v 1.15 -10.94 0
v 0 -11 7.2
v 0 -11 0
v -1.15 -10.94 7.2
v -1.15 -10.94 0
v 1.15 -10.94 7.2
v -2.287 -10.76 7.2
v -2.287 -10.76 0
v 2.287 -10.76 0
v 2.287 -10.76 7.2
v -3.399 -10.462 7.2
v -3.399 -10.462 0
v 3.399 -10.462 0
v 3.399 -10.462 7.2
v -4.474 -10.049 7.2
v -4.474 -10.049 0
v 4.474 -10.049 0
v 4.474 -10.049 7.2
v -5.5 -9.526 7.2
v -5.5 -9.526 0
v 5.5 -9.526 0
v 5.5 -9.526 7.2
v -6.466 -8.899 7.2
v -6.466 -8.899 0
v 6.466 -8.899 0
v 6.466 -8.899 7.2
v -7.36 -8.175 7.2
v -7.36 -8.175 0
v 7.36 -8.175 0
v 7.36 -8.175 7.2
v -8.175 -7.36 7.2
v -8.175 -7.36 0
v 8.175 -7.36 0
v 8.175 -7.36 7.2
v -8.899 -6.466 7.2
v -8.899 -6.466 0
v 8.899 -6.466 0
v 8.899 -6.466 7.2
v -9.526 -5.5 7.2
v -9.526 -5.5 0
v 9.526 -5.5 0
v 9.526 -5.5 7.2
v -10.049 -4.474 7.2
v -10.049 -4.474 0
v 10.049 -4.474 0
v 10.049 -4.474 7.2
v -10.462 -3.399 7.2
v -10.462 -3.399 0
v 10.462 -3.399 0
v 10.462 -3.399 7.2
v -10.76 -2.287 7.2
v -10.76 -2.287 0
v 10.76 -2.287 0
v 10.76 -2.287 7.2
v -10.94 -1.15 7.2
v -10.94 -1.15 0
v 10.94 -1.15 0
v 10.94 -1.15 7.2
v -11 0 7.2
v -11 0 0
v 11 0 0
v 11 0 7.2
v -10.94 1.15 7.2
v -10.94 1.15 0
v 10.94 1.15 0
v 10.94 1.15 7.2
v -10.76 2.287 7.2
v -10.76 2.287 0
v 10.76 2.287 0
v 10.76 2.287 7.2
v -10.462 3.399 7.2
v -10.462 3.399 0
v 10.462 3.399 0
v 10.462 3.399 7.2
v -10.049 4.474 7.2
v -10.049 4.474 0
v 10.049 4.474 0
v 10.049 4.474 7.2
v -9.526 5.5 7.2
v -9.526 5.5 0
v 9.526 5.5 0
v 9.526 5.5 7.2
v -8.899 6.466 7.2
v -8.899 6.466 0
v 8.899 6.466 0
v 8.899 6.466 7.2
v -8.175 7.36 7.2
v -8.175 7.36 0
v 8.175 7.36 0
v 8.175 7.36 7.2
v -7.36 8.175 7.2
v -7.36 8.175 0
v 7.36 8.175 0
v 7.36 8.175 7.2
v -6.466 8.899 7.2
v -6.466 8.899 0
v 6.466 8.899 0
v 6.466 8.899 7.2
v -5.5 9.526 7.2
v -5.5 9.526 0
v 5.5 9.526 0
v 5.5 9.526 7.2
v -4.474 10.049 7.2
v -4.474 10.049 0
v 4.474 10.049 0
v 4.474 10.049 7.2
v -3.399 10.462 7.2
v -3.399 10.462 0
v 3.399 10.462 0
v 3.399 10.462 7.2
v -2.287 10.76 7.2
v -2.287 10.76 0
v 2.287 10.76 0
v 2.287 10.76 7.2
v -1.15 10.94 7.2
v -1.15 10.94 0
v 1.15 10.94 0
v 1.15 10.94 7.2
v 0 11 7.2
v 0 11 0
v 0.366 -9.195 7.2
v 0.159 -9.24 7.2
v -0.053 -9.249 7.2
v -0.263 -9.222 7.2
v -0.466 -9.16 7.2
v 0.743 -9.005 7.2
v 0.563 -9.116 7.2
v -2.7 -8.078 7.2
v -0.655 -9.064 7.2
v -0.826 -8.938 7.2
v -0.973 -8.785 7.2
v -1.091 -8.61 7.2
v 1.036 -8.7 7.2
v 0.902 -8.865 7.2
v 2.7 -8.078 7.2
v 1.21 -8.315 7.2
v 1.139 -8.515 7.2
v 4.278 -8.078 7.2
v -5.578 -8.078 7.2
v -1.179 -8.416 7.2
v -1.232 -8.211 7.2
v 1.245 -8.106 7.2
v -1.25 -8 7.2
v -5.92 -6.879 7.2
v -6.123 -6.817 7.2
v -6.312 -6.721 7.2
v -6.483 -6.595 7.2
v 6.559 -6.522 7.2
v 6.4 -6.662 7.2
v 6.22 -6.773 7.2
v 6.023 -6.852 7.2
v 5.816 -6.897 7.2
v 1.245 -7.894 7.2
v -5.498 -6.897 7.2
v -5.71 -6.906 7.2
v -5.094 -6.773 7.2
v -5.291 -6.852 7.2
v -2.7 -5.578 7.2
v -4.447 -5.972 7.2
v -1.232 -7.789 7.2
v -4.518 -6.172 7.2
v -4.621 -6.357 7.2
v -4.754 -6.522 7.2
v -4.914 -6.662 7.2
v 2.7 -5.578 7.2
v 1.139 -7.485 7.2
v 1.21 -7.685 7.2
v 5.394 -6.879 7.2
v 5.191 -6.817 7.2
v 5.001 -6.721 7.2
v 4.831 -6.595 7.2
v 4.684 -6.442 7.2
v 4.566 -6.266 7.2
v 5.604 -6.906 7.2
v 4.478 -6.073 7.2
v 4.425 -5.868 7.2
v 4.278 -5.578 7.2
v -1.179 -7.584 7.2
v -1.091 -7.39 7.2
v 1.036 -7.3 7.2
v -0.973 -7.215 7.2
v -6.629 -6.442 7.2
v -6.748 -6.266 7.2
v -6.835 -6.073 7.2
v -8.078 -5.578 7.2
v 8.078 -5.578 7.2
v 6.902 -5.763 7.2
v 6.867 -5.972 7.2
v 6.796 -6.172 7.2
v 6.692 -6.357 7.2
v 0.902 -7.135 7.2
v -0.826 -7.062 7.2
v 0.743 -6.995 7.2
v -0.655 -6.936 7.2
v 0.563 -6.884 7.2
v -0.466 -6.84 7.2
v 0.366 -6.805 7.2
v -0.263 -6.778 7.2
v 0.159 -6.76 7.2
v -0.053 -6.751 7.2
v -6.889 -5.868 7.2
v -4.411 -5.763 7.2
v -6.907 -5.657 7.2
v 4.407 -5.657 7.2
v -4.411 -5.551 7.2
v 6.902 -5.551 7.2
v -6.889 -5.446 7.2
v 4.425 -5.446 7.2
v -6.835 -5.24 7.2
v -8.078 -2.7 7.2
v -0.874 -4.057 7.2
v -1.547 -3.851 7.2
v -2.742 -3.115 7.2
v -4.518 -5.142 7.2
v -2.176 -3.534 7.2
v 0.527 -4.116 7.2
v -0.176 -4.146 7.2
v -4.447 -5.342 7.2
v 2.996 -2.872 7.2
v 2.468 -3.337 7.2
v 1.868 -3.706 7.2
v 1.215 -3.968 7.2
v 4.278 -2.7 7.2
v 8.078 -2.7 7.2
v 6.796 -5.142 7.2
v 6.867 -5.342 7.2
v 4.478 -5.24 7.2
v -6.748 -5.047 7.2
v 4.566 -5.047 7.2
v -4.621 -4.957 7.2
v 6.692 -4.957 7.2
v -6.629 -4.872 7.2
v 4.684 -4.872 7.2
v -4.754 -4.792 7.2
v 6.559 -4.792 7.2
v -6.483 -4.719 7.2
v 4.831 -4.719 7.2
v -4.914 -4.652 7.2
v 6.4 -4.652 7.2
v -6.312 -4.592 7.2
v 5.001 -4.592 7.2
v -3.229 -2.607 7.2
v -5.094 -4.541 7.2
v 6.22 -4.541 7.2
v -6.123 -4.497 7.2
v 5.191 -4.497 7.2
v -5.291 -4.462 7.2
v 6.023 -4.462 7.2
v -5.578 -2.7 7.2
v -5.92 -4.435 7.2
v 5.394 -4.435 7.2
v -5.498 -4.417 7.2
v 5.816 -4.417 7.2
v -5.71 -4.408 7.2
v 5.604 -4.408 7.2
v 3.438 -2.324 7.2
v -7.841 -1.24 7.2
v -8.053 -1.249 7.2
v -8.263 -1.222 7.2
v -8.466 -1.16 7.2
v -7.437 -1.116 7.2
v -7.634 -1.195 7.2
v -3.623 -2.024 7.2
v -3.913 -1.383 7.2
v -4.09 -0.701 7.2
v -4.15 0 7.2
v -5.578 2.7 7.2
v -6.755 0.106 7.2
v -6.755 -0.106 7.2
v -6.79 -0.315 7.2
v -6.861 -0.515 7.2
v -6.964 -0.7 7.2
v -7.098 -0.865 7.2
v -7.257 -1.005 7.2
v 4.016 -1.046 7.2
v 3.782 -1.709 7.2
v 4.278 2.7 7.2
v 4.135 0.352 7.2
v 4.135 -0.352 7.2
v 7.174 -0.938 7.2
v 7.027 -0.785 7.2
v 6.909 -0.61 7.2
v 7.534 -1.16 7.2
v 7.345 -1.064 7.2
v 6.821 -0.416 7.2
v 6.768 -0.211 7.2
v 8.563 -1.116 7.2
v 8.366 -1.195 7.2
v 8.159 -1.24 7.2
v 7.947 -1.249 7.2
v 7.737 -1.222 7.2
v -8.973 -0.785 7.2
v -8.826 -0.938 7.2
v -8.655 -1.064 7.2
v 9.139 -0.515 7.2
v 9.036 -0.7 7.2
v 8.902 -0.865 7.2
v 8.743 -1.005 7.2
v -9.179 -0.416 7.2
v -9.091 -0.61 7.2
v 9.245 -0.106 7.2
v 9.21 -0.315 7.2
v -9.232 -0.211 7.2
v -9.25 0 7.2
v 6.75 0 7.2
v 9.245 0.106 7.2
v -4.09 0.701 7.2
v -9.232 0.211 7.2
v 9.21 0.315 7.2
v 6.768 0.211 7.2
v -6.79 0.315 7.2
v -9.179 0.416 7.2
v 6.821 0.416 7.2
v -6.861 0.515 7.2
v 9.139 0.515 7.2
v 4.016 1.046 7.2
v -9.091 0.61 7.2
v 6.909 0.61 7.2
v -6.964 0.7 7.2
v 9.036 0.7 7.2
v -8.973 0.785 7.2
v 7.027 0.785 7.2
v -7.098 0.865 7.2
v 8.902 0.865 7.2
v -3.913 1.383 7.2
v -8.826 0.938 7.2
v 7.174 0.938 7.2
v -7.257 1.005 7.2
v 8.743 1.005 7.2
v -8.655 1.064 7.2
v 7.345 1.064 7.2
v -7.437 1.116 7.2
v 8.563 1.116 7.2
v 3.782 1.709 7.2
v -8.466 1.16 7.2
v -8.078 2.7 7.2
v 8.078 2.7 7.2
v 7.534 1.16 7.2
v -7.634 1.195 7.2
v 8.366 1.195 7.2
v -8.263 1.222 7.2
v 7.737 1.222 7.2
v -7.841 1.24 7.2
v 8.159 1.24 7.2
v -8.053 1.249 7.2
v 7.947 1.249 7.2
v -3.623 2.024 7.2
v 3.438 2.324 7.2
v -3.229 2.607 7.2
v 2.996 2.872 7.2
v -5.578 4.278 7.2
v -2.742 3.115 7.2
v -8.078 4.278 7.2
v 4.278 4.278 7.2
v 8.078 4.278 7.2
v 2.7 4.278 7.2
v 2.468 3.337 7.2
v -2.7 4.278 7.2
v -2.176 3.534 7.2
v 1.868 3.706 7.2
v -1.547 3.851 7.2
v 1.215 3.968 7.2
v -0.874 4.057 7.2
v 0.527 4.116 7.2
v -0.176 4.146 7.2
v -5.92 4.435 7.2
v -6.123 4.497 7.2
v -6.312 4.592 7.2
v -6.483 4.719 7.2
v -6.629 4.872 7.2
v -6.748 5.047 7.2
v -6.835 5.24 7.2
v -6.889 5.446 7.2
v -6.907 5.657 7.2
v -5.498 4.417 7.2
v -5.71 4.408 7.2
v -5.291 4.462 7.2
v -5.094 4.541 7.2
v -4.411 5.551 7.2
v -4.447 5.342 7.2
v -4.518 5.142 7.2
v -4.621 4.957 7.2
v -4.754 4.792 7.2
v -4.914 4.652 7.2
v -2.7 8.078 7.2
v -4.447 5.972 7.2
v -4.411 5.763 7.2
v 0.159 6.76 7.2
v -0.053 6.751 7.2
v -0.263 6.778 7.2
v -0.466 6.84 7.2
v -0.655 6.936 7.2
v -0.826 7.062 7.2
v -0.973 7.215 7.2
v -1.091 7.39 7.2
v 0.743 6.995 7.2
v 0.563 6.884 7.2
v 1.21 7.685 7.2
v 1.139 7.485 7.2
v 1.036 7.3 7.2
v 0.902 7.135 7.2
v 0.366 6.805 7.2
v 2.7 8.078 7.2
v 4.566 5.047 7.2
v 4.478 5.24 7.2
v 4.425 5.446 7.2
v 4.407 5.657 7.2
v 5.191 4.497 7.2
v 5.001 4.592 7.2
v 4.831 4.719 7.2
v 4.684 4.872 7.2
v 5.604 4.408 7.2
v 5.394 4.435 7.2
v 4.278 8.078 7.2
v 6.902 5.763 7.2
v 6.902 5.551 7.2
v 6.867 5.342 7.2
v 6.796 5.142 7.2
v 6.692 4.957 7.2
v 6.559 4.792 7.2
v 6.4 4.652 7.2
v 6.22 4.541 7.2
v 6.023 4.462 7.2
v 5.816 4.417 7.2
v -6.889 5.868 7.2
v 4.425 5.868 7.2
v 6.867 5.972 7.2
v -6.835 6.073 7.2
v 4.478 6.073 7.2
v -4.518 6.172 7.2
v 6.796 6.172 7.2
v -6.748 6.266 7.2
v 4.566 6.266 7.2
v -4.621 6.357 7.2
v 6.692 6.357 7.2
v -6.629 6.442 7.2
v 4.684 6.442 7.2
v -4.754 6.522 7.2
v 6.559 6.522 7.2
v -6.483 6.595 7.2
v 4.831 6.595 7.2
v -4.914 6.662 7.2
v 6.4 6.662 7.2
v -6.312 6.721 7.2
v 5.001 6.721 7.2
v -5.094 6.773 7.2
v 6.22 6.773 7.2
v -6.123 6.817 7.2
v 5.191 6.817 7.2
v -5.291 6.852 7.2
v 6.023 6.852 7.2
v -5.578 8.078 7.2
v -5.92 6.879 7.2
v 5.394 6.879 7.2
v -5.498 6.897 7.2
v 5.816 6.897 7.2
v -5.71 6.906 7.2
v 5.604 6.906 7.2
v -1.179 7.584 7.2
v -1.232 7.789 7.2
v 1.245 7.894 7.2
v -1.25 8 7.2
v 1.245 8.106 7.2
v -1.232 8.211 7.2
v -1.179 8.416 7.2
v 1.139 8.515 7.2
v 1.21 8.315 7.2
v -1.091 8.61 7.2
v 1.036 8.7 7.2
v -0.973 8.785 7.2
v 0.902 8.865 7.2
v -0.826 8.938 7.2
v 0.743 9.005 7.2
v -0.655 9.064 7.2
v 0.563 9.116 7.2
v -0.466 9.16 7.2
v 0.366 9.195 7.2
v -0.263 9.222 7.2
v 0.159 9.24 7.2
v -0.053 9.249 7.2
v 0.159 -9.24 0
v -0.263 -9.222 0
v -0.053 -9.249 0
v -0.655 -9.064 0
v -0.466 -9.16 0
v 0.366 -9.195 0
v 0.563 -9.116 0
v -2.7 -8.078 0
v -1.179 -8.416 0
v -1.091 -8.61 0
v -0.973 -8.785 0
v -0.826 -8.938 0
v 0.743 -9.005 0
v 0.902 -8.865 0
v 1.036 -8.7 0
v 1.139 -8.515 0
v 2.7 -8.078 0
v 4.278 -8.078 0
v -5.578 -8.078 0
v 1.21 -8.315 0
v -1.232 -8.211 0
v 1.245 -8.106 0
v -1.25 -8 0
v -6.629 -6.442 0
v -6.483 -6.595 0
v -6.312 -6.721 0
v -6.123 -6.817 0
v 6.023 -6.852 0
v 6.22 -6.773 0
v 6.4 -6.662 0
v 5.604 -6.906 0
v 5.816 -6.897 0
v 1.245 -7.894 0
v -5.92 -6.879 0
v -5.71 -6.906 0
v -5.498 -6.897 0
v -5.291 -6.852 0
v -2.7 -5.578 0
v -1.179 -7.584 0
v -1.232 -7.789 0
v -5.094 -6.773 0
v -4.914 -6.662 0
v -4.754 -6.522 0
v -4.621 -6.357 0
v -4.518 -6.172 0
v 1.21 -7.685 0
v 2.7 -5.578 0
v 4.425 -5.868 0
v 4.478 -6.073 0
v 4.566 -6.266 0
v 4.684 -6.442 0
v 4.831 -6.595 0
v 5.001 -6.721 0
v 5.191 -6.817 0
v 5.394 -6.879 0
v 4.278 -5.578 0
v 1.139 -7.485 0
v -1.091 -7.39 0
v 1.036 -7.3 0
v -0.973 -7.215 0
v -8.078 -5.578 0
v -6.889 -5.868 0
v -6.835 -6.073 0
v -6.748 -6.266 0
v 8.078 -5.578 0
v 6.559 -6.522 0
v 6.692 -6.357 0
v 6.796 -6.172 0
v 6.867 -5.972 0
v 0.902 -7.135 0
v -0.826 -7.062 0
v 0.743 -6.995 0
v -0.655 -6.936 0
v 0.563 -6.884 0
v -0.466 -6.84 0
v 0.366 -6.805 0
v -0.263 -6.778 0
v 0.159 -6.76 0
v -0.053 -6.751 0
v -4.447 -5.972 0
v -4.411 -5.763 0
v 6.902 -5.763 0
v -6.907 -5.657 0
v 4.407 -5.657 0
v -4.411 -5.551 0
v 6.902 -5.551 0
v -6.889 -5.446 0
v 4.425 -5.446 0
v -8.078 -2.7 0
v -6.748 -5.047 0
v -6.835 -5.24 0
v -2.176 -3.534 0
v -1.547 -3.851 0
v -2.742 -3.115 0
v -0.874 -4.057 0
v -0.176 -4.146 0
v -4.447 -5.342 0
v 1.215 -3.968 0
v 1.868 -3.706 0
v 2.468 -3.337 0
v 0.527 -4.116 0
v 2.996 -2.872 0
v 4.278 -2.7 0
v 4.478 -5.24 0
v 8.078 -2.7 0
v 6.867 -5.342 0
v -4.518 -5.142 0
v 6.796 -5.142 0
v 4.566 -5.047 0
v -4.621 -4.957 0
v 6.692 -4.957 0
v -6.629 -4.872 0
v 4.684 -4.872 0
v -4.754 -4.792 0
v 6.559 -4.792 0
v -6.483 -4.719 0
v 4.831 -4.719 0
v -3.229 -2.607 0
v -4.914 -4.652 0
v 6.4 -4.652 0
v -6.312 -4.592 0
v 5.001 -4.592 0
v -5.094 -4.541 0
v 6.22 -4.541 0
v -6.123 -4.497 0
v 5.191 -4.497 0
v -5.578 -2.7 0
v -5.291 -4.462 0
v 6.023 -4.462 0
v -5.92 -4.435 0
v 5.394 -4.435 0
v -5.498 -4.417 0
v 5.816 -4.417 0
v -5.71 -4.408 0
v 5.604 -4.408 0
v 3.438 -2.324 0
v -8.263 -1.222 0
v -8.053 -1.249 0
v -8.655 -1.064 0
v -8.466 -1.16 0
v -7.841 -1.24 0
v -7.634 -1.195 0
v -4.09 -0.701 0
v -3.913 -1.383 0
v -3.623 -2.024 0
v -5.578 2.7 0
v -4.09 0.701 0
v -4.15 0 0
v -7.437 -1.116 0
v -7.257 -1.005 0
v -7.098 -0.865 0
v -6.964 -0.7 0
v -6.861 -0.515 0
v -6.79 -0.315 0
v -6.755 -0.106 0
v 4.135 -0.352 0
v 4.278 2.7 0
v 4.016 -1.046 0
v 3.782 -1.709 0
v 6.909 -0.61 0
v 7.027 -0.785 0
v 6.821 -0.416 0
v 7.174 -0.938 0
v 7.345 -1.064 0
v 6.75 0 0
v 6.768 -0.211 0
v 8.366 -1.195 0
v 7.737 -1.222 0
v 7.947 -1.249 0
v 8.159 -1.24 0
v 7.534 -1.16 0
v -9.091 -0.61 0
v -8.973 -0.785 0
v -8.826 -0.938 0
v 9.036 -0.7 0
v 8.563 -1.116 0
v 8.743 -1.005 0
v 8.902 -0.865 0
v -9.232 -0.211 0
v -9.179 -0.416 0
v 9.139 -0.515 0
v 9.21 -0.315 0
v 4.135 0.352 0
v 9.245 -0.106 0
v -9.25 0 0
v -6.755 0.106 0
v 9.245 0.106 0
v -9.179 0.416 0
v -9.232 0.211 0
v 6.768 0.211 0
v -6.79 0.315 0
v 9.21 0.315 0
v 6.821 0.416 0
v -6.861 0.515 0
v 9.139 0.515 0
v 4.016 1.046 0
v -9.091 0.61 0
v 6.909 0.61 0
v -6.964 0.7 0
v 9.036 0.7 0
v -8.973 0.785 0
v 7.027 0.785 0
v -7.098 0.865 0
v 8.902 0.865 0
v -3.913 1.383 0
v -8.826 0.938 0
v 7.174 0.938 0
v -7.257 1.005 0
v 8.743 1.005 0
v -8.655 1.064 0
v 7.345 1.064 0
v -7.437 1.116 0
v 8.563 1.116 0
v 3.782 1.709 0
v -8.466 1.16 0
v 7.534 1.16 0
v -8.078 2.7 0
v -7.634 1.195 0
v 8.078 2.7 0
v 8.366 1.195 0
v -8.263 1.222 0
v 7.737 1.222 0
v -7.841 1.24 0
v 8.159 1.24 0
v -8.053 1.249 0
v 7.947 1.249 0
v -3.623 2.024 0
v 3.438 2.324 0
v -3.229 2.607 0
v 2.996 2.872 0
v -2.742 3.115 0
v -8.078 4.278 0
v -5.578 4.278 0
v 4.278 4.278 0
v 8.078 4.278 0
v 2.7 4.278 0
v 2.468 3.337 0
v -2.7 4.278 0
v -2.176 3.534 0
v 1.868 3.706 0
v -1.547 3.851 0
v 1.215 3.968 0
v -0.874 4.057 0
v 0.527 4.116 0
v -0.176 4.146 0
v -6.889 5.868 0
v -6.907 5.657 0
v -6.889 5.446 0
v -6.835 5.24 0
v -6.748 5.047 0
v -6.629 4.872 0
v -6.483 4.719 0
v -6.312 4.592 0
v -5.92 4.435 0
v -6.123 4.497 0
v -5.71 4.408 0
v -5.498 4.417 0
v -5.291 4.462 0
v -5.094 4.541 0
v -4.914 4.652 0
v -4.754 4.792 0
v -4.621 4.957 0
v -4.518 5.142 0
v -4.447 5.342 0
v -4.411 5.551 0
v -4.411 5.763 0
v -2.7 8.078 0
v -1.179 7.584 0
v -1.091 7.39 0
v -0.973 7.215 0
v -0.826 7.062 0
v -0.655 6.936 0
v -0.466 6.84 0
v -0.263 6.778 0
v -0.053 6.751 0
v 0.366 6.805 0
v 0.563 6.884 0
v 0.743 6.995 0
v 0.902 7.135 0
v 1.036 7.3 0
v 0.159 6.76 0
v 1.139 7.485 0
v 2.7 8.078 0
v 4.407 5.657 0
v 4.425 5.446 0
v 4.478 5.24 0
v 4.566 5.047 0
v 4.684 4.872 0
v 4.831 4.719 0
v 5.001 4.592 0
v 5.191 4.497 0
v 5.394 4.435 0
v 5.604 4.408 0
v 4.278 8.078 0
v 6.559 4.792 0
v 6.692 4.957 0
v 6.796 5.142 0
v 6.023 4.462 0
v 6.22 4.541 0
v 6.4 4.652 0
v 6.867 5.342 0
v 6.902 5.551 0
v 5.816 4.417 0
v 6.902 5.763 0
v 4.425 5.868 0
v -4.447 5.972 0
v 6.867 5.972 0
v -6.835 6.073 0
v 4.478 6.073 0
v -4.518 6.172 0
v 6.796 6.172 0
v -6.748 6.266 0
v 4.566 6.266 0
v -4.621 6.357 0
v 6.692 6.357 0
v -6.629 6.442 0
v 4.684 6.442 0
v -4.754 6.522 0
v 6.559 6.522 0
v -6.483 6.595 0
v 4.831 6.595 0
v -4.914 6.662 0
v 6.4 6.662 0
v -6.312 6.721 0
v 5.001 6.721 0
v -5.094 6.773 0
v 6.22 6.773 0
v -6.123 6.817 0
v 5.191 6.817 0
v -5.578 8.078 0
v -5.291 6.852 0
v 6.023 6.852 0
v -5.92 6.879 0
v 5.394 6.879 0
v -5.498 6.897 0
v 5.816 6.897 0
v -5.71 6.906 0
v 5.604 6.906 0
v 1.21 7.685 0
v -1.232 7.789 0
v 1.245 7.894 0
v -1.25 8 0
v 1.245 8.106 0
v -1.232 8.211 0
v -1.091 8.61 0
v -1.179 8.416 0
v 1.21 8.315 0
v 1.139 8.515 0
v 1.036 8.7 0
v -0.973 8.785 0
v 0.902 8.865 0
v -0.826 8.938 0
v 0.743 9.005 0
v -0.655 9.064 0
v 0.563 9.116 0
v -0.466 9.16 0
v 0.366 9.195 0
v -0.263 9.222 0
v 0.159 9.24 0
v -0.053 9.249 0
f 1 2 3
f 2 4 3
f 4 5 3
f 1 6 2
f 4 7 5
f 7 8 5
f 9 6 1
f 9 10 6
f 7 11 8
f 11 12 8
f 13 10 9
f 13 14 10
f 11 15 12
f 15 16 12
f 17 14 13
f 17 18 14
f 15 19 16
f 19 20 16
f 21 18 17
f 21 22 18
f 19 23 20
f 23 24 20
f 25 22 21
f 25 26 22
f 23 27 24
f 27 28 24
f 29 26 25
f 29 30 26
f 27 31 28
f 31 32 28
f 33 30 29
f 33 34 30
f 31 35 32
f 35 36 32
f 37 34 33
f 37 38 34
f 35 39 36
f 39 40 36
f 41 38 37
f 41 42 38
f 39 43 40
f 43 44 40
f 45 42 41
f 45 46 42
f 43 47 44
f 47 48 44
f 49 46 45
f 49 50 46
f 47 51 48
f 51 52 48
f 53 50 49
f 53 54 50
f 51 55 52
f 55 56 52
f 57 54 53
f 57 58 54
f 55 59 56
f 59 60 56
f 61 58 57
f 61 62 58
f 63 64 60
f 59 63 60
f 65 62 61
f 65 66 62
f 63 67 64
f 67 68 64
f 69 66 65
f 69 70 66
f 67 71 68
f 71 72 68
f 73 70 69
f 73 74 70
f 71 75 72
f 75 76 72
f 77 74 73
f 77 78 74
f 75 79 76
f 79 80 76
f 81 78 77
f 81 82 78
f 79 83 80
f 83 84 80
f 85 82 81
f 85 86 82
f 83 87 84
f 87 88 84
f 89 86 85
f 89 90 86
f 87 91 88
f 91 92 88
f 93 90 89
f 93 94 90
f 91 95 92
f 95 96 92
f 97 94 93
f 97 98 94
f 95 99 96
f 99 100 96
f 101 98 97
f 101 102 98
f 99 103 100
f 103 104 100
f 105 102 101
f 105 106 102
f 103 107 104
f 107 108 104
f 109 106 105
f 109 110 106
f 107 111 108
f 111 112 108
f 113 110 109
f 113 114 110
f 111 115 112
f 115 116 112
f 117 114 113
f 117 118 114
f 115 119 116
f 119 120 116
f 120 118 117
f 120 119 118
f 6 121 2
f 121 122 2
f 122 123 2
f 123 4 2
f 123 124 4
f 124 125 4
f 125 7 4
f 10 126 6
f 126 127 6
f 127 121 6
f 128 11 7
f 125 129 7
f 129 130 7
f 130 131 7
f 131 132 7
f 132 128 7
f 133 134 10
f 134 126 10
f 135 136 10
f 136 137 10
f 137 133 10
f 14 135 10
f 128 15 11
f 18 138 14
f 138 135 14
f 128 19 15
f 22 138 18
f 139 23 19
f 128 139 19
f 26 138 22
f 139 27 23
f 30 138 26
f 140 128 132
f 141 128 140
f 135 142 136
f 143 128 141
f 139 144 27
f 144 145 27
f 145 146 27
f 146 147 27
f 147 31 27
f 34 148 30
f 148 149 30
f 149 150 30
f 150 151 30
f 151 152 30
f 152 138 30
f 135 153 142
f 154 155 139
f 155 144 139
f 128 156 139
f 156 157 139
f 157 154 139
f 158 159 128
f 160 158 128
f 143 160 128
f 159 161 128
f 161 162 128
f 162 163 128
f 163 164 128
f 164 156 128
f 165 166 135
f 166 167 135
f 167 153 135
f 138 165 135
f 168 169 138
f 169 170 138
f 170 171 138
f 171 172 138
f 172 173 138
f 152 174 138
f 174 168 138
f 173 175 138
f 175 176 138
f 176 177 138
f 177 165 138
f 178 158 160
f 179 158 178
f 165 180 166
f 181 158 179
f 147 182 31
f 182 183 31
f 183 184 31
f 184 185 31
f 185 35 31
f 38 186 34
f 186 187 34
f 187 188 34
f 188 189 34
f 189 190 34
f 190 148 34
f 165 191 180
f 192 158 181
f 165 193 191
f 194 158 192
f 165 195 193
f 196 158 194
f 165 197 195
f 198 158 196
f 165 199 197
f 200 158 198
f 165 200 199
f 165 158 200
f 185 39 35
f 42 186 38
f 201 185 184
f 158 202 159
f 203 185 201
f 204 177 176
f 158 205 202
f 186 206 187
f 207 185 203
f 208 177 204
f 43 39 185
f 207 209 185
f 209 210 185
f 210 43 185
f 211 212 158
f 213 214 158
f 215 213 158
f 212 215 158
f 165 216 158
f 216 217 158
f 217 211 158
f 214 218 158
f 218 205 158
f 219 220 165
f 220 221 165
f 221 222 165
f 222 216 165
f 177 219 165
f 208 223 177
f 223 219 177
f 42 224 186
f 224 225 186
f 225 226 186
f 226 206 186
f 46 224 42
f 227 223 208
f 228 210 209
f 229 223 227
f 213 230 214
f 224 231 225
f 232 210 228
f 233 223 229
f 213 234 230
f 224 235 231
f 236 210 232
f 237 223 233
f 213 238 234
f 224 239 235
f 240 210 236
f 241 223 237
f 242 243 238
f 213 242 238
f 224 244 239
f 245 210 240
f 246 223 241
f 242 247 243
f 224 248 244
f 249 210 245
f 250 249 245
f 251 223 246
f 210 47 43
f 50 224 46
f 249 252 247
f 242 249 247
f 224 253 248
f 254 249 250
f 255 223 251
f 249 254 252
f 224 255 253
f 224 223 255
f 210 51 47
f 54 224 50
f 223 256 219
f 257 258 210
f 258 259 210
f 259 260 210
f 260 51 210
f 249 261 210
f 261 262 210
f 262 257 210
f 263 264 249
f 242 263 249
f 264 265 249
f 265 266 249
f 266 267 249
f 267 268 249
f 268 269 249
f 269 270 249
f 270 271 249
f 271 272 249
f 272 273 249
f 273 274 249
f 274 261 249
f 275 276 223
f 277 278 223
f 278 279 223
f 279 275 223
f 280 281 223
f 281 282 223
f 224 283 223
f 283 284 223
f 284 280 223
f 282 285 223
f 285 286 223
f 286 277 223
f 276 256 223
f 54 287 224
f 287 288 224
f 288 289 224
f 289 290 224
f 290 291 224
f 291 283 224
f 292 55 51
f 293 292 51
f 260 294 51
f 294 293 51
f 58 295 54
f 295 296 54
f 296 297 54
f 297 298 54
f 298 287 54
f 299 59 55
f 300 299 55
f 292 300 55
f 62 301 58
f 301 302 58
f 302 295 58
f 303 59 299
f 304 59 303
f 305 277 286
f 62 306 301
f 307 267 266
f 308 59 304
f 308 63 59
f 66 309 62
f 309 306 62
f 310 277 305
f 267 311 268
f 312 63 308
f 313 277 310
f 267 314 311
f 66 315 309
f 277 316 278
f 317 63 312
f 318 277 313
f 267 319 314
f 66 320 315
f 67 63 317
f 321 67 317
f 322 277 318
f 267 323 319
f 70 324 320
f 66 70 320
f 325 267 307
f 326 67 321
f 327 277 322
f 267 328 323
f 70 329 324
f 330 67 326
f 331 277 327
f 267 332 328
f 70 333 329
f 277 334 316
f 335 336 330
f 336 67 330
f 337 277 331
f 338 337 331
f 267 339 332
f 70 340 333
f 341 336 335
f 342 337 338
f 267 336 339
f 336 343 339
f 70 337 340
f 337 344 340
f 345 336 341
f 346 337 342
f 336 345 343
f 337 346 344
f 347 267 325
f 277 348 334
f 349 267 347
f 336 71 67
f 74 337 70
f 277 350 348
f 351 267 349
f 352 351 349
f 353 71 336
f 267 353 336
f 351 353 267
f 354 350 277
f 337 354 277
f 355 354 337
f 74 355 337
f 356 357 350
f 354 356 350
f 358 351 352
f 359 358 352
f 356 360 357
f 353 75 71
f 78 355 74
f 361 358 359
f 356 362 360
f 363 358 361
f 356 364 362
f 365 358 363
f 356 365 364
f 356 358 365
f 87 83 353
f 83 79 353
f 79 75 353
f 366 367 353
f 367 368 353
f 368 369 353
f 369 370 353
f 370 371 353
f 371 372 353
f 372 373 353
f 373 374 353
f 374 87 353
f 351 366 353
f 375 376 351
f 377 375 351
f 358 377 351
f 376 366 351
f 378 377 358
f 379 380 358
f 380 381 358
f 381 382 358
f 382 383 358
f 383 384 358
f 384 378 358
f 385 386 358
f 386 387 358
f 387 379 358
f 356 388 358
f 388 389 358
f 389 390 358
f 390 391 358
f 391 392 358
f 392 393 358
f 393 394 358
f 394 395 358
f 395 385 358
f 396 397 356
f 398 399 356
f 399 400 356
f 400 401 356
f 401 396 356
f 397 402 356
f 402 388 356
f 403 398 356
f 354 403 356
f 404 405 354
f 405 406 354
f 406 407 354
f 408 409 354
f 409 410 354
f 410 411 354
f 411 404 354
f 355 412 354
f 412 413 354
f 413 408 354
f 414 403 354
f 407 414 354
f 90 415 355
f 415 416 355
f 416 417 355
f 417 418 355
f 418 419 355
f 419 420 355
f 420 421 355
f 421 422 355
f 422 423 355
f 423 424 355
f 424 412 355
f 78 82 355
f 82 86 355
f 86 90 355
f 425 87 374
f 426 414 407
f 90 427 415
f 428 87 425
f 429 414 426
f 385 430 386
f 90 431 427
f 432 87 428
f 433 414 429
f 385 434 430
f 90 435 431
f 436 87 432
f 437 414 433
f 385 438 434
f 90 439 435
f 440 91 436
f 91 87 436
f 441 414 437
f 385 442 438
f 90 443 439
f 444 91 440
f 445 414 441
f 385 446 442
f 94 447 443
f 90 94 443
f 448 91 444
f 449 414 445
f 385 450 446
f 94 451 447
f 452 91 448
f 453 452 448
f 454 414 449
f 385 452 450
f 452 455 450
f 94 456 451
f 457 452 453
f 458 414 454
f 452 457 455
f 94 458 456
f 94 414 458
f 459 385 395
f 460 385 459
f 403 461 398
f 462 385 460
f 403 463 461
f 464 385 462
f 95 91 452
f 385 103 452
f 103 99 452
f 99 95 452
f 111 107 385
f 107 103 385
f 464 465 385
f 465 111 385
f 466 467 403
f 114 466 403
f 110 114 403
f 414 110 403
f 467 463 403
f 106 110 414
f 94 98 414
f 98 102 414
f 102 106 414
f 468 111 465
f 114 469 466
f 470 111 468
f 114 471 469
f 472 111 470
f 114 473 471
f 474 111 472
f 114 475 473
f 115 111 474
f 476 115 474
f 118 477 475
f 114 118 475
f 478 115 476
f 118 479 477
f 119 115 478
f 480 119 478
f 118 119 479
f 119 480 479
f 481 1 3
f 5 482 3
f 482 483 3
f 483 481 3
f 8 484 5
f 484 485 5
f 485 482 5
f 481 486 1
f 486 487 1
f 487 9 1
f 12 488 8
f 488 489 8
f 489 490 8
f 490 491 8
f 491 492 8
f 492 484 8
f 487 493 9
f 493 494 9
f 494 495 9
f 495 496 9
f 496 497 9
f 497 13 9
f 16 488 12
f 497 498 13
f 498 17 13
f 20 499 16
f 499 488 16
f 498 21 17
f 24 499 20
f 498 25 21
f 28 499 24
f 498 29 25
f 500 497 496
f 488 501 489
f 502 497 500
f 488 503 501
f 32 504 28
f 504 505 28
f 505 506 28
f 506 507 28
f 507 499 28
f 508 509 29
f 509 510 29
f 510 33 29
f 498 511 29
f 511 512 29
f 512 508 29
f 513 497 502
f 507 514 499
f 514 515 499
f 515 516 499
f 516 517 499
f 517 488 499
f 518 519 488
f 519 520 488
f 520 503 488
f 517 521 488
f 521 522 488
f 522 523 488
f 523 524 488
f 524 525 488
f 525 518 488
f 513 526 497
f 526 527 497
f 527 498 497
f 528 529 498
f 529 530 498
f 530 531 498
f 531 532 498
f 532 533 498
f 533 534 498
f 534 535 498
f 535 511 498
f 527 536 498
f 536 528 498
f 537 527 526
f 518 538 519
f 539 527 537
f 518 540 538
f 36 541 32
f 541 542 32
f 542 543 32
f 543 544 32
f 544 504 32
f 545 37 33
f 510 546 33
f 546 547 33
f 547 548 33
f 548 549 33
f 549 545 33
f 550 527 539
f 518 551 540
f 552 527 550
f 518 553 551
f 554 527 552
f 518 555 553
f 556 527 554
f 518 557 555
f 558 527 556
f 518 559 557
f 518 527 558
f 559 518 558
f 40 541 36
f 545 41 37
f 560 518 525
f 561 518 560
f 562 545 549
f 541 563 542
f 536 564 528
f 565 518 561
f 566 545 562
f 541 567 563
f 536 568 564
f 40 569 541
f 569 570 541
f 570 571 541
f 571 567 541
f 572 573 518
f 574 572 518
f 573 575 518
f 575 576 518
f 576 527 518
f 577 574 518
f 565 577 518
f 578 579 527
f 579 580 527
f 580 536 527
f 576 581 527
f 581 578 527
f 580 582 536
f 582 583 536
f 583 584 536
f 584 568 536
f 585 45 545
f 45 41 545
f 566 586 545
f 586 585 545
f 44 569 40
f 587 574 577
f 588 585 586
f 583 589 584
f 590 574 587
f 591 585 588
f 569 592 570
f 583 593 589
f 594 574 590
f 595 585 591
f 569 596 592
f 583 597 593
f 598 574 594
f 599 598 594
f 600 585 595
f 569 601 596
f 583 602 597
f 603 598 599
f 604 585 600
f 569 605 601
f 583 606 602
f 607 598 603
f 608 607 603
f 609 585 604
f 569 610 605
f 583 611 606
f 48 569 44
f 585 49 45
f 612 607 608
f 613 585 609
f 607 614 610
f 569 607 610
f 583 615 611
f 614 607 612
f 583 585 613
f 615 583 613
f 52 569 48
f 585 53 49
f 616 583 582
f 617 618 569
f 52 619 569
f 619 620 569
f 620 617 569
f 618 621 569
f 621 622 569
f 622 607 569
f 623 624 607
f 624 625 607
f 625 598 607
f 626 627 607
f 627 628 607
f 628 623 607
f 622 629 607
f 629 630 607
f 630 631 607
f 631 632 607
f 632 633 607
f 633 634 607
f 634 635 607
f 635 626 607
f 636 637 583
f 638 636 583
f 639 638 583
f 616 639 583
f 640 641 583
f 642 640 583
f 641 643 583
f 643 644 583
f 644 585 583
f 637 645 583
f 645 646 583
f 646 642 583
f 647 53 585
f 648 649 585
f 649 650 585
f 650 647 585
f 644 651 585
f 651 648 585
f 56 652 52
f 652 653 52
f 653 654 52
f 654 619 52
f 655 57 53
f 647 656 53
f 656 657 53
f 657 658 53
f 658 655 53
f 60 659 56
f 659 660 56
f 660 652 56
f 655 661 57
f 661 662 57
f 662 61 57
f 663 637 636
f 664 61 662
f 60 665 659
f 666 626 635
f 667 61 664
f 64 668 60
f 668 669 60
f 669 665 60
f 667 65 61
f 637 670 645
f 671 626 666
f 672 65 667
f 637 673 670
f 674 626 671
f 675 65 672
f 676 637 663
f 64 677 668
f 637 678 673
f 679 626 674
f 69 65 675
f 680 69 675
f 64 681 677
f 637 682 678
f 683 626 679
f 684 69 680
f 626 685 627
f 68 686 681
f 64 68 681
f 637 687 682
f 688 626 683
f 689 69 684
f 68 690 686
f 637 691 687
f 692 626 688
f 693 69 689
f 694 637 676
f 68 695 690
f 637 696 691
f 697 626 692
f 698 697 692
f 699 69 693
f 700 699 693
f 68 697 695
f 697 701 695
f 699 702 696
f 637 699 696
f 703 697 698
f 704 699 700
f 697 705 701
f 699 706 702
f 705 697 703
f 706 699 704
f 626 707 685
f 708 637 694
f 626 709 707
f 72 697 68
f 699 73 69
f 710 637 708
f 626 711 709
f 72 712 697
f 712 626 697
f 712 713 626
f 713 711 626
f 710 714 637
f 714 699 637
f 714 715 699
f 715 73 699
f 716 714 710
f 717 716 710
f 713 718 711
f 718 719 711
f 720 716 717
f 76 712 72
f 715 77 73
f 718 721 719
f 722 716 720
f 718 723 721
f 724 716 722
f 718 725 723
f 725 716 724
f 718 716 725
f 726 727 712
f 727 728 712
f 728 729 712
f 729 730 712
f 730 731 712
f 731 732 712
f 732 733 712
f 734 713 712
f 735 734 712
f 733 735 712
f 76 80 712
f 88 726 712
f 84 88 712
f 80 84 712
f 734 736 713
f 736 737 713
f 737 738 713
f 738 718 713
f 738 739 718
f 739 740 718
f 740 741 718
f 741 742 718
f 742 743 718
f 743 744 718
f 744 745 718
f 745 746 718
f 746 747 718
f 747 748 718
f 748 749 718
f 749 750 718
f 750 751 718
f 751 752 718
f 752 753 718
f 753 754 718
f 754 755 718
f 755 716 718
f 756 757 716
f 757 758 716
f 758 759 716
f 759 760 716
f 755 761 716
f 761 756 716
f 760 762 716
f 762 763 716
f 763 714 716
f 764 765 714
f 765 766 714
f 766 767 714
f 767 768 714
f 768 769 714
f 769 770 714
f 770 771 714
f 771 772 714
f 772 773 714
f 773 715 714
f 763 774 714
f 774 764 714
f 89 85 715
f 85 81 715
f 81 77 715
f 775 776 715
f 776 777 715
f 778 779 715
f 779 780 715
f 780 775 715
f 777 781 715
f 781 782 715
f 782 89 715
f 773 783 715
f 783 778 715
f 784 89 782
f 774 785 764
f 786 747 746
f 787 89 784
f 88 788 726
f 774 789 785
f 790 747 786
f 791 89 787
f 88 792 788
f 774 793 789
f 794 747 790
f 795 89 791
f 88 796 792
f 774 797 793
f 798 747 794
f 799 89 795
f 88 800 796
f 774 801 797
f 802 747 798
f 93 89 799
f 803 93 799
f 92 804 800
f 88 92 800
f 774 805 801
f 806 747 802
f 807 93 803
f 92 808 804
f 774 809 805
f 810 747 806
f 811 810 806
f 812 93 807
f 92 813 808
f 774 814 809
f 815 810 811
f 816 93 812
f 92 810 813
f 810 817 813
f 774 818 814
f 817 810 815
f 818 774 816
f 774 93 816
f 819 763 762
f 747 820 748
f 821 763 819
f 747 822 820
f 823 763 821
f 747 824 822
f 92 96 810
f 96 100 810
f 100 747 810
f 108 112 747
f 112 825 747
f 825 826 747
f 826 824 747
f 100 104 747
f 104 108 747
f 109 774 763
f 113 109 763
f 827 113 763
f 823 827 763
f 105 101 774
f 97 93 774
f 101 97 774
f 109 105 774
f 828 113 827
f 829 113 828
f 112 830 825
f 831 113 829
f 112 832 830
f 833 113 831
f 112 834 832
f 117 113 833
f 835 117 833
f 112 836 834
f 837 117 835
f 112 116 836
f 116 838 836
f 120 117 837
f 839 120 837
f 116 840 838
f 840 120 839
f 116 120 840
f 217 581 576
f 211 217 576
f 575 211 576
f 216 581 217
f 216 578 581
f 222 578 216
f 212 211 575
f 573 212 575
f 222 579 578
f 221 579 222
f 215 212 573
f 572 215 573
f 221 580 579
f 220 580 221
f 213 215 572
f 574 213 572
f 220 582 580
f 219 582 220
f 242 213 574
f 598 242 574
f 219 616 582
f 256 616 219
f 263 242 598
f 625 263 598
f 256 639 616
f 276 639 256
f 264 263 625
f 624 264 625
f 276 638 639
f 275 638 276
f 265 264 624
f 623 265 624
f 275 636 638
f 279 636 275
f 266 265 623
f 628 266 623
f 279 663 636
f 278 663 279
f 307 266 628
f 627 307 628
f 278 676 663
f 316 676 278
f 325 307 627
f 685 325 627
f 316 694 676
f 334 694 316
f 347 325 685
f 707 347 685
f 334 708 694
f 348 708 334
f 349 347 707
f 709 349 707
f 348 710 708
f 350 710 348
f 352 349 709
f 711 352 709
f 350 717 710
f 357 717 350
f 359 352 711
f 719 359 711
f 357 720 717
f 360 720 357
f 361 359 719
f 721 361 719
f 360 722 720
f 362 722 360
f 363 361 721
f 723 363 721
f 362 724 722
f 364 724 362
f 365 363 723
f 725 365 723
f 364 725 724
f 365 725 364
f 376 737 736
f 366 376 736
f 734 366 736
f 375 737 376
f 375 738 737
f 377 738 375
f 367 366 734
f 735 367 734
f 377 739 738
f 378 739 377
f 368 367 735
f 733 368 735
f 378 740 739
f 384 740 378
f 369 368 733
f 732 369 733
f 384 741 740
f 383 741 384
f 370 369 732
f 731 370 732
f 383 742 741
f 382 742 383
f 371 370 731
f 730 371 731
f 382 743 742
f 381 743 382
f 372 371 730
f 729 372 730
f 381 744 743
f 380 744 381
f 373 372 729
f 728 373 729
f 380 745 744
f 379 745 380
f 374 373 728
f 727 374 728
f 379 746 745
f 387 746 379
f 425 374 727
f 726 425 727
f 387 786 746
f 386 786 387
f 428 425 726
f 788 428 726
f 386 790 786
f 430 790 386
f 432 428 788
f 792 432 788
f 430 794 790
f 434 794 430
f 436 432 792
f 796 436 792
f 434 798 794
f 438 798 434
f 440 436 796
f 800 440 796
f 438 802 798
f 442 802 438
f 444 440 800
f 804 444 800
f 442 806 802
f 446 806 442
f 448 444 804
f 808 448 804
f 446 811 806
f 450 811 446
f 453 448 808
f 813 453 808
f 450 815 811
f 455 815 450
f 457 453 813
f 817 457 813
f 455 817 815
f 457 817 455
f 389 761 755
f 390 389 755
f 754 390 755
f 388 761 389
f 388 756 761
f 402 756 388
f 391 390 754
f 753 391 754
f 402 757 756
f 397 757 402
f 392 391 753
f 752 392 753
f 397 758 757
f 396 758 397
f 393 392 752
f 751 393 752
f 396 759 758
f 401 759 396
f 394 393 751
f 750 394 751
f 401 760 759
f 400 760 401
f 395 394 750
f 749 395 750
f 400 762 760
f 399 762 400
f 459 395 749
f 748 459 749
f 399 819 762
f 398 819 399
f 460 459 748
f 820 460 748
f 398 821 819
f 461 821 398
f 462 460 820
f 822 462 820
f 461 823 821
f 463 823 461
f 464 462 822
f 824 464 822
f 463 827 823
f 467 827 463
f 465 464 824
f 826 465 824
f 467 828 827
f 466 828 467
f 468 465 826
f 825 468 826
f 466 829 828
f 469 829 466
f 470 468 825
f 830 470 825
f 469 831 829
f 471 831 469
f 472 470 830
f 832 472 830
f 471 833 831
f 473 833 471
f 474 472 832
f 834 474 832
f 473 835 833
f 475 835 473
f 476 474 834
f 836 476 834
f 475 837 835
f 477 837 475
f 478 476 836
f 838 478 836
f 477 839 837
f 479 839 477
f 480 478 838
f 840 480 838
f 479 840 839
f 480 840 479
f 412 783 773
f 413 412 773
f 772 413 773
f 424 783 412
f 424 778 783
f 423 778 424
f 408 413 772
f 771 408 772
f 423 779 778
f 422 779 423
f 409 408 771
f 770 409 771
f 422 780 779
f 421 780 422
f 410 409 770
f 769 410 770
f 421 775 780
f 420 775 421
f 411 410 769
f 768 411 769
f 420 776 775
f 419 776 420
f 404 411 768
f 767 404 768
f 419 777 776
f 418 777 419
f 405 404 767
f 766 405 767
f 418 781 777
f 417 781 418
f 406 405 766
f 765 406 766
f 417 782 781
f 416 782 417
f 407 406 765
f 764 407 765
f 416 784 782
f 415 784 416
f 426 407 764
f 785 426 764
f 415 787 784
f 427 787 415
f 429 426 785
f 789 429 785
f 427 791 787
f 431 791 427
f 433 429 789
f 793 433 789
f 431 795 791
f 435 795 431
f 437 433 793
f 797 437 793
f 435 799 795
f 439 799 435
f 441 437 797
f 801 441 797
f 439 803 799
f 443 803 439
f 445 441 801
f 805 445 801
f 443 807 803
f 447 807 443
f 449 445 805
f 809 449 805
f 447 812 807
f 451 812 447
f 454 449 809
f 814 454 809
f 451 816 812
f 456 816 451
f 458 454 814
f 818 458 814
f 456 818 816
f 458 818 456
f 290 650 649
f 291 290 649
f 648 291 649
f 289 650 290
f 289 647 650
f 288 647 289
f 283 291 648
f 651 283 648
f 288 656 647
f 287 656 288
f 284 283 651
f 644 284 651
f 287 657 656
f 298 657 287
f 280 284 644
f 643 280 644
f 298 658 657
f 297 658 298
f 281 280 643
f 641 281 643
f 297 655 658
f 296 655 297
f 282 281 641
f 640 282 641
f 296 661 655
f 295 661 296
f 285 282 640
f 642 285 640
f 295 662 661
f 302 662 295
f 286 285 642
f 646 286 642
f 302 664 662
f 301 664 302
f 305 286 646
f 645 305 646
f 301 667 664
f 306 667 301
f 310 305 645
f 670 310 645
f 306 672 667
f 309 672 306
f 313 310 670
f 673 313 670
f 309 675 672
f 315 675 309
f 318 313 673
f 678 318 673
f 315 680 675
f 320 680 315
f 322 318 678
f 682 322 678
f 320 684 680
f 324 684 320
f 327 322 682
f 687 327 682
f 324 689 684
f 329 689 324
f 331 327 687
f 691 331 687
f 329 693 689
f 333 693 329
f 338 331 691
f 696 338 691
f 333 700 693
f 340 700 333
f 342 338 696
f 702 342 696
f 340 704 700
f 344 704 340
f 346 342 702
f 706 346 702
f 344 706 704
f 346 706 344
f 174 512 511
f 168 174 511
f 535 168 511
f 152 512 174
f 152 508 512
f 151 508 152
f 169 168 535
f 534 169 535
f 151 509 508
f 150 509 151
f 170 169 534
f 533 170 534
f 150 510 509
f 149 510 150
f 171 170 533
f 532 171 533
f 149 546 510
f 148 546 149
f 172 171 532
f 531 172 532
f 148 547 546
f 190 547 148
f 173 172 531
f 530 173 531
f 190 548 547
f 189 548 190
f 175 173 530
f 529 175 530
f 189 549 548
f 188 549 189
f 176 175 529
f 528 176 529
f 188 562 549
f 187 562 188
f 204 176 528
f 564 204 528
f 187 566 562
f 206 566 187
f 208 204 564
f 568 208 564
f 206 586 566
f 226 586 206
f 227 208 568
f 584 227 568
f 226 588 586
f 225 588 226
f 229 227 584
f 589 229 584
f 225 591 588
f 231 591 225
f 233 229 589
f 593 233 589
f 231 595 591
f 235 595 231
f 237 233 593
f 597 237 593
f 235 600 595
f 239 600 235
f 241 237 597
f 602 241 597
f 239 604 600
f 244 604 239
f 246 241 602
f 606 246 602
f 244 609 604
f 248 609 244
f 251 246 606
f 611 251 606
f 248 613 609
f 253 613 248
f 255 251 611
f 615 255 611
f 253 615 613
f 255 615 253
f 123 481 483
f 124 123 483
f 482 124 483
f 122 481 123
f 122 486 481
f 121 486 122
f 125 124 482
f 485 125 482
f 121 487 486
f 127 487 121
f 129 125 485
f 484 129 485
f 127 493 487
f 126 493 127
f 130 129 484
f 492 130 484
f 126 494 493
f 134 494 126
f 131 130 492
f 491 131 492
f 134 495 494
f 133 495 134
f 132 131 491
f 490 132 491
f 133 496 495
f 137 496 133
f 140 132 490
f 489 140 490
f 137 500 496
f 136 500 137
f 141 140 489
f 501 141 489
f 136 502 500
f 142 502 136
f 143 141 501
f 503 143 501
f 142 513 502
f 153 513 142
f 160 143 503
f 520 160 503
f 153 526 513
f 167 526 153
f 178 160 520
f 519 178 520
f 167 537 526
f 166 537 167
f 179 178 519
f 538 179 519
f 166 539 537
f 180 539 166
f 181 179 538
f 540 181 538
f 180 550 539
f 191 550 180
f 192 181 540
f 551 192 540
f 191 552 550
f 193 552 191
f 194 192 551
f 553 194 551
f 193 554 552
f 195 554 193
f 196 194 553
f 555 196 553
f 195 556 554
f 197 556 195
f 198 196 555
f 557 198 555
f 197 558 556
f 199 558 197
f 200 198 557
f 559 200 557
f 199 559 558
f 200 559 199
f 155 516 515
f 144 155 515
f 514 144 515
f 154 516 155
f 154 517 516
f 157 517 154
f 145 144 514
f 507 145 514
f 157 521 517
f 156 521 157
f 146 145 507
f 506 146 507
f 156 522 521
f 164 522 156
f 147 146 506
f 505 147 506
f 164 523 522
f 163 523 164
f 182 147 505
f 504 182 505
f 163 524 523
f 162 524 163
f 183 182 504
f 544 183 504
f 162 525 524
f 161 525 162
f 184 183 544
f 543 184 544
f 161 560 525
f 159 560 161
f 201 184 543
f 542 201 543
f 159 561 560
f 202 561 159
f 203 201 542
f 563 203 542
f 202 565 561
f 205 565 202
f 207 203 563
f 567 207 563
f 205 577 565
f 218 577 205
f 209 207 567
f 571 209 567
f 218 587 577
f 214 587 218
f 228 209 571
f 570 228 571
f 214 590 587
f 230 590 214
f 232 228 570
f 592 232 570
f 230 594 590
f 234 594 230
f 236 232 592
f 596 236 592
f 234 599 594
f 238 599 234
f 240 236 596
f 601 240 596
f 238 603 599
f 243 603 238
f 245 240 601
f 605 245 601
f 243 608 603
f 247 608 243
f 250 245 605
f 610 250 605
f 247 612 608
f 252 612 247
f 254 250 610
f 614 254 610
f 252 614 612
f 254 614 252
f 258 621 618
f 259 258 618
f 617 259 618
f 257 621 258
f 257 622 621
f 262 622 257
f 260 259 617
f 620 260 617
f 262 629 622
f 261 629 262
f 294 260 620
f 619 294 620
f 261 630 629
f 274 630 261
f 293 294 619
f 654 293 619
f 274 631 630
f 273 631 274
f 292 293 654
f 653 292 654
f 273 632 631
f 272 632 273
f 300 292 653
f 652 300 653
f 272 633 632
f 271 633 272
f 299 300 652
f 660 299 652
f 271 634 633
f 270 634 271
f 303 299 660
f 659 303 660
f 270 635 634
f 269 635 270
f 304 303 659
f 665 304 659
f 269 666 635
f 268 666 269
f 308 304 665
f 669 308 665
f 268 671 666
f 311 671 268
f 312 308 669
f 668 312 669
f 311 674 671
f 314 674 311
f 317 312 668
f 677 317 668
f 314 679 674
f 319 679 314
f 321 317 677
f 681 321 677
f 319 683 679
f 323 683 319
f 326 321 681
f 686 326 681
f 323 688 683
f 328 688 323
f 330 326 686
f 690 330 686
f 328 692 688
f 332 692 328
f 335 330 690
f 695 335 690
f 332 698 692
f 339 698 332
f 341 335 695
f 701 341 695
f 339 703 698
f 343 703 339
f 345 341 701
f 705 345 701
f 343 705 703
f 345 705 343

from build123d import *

# Parameters (mm, degrees)
SKETCH2_R           = 11
BOSS_EXTRUDE1_DEPTH = 7.2
SKETCH3_R           = 4.15
SKETCH3_R_2         = 1.25
CUT_EXTRUDE1_DEPTH  = 8.2


with BuildPart() as part:
    # Sketch2 → Boss-Extrude1 (new body)
    with BuildSketch(Plane.XY):
        Circle(SKETCH2_R)
    extrude(amount=BOSS_EXTRUDE1_DEPTH)

    # Sketch3 → Cut-Extrude1 (cut, through all)
    with BuildSketch(Plane(origin=(0, 0, 0), x_dir=(-1, 0, 0), z_dir=(0, 0, -1))):
        Circle(SKETCH3_R)
        with Locations((8, 0)):
            Circle(SKETCH3_R_2)
        with Locations((5.656854249, -5.656854249)):
            Circle(SKETCH3_R_2)
        with Locations((0, -8)):
            Circle(SKETCH3_R_2)
        with Locations((-5.656854249, -5.656854249)):
            Circle(SKETCH3_R_2)
        with Locations((-8, 0)):
            Circle(SKETCH3_R_2)
        with Locations((-5.656854249, 5.656854249)):
            Circle(SKETCH3_R_2)
        with Locations((0, 8)):
            Circle(SKETCH3_R_2)
        with Locations((5.656854249, 5.656854249)):
            Circle(SKETCH3_R_2)
    extrude(amount=-CUT_EXTRUDE1_DEPTH, mode=Mode.SUBTRACT)


solid = part.part
